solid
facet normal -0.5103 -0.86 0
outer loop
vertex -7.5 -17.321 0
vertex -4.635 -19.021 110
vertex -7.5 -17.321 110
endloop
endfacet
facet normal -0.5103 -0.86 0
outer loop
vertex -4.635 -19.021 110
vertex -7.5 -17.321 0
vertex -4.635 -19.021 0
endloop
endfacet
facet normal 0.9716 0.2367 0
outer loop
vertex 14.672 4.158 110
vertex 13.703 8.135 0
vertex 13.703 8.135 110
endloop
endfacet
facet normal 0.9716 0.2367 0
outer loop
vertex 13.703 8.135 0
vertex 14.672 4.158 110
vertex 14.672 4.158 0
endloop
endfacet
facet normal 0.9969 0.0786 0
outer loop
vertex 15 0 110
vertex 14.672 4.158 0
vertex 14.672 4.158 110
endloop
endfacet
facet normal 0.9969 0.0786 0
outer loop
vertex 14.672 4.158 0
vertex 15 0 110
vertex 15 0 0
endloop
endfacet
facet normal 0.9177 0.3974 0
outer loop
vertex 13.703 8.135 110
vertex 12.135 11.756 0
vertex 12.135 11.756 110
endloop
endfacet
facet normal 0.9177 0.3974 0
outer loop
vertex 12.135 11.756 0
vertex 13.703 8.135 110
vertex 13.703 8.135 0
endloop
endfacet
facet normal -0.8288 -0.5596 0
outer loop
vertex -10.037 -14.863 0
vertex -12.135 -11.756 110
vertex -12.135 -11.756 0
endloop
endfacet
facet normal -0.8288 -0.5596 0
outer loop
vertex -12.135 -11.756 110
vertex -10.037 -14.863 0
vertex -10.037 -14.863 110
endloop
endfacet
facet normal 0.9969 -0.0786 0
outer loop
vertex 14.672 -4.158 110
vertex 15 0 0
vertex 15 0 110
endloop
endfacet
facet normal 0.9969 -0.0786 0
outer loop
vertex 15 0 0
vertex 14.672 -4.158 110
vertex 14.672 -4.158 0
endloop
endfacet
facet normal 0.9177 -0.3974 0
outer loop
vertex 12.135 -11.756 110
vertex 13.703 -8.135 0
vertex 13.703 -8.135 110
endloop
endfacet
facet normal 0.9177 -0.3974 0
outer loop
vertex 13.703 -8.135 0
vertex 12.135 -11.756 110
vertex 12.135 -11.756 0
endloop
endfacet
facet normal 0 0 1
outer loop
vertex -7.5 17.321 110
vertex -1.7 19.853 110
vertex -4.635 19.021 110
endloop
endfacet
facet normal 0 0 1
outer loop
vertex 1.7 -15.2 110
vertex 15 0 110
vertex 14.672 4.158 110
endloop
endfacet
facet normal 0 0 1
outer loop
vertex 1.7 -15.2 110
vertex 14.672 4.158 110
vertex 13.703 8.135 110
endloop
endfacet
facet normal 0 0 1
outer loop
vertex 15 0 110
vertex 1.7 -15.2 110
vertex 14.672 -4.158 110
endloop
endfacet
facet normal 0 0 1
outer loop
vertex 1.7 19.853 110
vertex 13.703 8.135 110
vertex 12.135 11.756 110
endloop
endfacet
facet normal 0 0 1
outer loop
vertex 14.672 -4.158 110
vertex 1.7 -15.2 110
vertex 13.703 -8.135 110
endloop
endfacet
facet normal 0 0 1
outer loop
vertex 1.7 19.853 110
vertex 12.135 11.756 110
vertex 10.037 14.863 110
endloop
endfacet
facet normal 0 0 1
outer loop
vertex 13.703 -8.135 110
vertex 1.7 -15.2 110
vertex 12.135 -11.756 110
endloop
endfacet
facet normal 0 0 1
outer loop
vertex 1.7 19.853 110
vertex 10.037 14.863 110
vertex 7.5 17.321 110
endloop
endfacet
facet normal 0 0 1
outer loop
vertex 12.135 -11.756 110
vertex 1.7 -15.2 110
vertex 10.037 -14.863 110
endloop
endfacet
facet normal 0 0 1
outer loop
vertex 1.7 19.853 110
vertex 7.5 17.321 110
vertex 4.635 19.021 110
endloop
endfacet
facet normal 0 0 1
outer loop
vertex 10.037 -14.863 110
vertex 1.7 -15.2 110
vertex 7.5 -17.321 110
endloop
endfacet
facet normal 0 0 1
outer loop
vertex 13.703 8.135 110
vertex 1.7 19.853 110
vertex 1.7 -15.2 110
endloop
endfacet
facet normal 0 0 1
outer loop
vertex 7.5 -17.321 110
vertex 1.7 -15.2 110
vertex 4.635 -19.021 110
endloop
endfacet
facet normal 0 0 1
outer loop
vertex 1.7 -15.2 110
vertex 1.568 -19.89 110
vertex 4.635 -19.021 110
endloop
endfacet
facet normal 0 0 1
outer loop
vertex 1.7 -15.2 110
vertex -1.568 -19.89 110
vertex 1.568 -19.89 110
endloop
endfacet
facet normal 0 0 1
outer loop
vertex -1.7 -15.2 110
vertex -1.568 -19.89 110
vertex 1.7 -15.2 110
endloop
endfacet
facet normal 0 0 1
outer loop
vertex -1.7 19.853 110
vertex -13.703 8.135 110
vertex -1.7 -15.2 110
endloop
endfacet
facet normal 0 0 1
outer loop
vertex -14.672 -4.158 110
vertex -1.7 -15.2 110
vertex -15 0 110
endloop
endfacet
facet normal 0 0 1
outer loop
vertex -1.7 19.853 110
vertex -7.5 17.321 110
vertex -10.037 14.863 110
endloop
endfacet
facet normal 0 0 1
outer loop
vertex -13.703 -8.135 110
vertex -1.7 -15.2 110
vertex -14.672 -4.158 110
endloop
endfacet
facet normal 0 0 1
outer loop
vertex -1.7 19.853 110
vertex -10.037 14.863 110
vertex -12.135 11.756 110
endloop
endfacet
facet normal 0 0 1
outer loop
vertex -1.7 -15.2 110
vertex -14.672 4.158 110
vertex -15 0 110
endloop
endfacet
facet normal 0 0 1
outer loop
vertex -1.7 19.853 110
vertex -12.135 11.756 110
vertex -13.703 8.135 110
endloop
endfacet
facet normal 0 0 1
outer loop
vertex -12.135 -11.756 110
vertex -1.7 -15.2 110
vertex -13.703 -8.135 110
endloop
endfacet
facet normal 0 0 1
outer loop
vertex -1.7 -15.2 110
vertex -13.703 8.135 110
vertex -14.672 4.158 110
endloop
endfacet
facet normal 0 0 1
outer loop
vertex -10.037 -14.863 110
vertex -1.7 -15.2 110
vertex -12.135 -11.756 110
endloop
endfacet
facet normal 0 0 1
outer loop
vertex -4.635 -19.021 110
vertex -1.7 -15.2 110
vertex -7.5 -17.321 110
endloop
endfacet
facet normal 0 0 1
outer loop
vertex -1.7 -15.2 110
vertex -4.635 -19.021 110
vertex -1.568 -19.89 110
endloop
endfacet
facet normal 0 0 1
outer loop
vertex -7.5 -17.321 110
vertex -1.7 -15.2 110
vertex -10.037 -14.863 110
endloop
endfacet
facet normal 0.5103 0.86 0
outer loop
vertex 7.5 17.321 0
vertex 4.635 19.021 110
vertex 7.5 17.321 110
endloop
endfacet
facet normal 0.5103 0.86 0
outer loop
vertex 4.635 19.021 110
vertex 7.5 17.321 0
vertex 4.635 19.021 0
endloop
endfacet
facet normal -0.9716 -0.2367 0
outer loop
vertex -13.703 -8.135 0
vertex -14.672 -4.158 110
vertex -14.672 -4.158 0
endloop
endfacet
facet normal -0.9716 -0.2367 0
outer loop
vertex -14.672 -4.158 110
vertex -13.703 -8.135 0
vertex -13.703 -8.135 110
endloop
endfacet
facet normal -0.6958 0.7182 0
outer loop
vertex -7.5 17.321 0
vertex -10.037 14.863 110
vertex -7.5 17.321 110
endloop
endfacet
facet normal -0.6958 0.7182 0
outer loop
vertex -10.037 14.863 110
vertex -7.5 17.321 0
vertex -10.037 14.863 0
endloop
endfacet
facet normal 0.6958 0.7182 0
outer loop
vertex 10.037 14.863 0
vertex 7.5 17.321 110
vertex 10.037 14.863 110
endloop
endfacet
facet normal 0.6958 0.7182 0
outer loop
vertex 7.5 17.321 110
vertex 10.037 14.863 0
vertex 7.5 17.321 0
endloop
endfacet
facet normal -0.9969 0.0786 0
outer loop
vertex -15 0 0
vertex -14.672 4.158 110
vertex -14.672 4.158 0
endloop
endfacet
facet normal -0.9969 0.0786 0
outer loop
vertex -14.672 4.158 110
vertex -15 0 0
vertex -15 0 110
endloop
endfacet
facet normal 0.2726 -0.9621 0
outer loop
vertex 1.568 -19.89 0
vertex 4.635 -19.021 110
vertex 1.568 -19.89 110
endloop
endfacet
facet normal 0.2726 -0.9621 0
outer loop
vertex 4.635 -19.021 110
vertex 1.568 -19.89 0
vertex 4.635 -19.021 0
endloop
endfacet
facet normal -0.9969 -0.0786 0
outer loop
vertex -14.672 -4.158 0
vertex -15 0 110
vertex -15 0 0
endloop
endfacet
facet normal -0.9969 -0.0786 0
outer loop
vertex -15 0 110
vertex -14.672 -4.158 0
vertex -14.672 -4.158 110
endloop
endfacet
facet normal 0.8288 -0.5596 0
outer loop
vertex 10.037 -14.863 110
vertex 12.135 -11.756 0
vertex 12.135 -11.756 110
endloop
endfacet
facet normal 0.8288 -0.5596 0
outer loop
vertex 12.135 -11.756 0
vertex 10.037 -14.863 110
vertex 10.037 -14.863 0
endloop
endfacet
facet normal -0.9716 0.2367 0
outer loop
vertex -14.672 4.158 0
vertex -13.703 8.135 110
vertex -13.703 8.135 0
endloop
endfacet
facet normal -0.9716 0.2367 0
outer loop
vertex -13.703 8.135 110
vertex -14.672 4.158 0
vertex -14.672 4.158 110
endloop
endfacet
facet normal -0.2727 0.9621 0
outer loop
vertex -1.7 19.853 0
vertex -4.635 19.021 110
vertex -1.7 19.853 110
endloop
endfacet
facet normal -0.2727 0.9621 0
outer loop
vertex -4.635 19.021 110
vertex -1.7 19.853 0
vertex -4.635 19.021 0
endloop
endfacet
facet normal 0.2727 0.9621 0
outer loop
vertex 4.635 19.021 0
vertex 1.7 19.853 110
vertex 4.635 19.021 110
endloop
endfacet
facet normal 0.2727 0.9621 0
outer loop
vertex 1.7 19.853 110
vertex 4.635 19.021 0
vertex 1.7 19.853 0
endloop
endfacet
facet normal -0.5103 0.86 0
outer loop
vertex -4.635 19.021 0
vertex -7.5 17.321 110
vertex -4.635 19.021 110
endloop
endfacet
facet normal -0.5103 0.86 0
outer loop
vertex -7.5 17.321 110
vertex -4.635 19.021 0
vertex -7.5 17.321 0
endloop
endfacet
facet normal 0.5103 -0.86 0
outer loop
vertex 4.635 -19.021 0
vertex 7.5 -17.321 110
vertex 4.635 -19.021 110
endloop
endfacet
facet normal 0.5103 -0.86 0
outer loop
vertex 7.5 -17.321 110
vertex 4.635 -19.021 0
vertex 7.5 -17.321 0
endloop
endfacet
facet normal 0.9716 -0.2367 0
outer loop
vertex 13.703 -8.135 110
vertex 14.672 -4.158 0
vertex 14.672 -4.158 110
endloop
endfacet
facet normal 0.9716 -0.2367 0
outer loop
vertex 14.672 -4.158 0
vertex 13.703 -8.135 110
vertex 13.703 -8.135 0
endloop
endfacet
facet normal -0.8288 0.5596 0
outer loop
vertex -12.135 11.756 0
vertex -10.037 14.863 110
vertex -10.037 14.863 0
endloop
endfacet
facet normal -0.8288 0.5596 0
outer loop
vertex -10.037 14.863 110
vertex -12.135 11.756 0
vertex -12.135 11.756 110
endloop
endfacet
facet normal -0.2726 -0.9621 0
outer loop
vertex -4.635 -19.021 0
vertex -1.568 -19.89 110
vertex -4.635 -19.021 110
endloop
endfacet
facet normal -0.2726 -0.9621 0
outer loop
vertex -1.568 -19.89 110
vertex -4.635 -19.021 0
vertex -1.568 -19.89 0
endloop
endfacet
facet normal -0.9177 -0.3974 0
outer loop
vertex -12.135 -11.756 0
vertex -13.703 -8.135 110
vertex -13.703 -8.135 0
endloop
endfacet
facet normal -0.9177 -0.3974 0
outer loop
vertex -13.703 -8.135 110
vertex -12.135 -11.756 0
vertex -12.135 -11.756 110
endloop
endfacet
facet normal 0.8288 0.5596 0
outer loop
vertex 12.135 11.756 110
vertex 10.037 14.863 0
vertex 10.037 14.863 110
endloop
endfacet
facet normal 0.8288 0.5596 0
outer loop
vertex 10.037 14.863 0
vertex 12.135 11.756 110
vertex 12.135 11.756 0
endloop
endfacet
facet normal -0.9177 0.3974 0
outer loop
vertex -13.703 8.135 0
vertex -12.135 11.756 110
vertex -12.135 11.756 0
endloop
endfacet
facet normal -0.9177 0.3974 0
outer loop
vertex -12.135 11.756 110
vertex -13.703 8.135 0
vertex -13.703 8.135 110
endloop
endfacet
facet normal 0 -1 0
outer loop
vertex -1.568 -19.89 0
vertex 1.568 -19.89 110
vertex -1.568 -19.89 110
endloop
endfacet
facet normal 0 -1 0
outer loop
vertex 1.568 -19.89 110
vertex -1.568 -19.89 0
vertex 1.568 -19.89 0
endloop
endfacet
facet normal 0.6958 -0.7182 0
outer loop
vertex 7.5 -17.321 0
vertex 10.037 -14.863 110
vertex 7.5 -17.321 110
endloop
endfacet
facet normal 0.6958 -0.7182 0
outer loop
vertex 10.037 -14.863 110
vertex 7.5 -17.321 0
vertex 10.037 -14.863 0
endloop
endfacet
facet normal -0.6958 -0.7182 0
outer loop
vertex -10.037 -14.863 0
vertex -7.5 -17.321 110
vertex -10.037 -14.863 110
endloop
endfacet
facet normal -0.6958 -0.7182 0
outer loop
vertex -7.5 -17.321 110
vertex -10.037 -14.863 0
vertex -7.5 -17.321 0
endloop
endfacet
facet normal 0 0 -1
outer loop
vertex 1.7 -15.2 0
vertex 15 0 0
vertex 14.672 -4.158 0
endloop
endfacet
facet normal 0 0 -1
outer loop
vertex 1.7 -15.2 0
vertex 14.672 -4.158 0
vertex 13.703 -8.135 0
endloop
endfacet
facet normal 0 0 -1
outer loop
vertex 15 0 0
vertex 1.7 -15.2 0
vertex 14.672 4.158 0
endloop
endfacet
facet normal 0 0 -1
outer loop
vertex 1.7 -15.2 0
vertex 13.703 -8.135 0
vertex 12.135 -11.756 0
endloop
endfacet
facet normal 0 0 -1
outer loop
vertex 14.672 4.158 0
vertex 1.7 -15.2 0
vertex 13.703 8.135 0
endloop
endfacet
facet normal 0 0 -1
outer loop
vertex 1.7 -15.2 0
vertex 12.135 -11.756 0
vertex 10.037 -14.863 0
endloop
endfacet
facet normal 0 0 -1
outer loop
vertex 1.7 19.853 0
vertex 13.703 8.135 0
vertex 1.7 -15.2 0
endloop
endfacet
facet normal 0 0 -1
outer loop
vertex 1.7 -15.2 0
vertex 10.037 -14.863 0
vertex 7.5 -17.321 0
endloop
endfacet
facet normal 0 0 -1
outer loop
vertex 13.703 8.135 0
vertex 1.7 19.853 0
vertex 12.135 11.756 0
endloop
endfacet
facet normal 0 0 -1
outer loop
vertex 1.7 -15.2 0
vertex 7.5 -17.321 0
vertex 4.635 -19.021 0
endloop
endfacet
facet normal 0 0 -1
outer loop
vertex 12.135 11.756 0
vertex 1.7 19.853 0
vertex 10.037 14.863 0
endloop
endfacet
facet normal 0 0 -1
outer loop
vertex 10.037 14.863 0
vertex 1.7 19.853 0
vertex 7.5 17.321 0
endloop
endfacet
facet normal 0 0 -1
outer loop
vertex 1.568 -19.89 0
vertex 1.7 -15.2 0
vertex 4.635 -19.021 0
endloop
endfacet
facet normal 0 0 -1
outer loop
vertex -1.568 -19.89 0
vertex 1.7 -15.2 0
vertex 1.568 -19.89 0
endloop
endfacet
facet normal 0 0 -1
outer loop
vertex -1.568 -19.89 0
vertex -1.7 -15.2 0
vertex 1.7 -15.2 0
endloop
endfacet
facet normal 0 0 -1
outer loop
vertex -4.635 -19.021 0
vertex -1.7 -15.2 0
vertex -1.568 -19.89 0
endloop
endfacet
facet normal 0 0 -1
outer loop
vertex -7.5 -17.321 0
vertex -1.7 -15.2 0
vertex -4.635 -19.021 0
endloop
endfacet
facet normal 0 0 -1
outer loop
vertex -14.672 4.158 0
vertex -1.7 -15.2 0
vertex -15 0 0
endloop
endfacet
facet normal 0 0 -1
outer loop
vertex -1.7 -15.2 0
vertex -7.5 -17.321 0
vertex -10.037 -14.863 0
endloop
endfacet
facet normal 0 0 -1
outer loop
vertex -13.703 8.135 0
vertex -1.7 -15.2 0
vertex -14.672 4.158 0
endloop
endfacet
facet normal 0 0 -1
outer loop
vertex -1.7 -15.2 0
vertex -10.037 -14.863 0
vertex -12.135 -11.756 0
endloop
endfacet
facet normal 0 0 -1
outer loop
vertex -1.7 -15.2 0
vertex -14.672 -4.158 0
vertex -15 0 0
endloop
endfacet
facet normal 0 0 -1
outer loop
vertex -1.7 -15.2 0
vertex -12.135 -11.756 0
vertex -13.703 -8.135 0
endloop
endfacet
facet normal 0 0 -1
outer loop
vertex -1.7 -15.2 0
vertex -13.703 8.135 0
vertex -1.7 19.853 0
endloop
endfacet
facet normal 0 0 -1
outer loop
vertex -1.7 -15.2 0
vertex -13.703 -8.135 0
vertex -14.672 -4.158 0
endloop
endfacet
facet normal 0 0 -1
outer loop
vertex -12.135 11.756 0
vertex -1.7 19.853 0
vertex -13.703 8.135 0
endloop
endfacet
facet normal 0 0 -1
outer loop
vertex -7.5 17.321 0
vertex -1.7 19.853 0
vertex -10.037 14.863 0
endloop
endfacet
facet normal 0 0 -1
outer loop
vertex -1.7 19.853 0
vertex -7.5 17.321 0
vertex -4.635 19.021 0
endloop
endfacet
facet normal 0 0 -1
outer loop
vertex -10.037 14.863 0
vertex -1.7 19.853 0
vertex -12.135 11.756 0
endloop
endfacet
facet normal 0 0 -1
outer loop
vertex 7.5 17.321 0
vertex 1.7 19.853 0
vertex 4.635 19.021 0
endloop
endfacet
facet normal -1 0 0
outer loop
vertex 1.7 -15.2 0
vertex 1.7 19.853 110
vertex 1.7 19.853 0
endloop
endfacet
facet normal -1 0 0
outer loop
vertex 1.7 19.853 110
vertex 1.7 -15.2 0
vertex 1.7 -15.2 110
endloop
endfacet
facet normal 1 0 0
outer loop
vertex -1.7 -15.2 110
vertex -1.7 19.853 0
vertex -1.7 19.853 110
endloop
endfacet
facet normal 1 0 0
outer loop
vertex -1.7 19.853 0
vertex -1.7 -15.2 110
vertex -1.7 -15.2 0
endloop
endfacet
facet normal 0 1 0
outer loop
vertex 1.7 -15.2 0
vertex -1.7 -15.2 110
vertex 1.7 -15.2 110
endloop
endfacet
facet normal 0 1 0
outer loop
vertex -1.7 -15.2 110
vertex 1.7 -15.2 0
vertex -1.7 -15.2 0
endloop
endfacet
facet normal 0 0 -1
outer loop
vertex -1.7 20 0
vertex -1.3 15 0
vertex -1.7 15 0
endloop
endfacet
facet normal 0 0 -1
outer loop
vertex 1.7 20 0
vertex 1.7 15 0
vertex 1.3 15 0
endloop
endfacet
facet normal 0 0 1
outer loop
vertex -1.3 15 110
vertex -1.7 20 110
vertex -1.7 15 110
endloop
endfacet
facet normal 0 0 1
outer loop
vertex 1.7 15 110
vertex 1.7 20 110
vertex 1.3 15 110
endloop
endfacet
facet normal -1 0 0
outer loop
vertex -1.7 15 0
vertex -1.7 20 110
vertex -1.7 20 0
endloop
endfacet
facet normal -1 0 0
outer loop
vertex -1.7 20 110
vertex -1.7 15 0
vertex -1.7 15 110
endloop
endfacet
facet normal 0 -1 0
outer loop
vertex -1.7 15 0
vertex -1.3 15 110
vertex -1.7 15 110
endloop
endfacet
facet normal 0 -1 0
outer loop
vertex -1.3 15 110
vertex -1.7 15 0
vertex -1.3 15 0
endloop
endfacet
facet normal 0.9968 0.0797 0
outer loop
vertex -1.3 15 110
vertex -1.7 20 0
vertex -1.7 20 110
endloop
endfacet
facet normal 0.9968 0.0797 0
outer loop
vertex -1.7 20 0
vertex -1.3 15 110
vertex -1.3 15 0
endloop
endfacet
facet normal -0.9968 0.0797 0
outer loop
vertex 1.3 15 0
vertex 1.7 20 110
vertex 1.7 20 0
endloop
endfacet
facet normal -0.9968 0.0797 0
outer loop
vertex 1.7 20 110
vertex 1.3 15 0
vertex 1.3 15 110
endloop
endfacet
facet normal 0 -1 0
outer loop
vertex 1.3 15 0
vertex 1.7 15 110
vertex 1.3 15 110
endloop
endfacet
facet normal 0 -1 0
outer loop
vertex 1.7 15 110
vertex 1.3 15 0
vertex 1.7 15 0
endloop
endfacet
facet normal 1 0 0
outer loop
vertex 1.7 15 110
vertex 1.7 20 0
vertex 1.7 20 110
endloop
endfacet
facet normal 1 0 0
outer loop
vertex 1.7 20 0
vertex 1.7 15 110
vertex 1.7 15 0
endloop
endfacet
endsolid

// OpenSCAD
// Spotlight Handle
// My brother-in-law has a car battery powered spotlight, the battery
// sits in a custom made box with metal handles welded on but it's
// pretty heavy and cuts into your hands when you lift it.
// This design is for a pair of comfortable plastic handles that clip
// on to make the battery pack easier to carry.

il=110; // inner length
ih=30; // inner height
iw=3; // inner width
oh=40; // outer height
ow=30; // 30 is also okay; outer height
gap=0.2; // for the part to fit on

union(){
    // main handle outer part with cutout to fit the metal piece
    difference(){
        // outter handle, scaled to be narrower for your hands
        scale([ow/oh,1,1]) cylinder(il,r=oh/2);
        // rectangular cut-out with gap for spacing
        translate([-iw/2-gap,-ih/2-gap,-1])
            #cube([iw+gap*2,ih*1.5+gap,il+2]);

        // represents the shape of the metal handle
        translate([-iw/2,-ih/2,-5]) %cube([iw,ih,il+10]);
    };

    // slight clips to hold the handle in place when you put it on
    // the clips slope to twice the gap size so as to be just too big
    // for the metal part, the plastic should allow this much movement
    ch=(oh-ih)/2; // clip height
    cw=gap*2; // clip width
    translate([0,ih/2+ch,0]) linear_extrude(il) {
        translate([-iw/2-gap,0,0]) triangle(+cw, -ch);
        translate([+iw/2+gap,0,0]) triangle(-cw, -ch);
    };
};

module triangle(w, h) { polygon([[0,0],[0,h],[w,h]]); }
